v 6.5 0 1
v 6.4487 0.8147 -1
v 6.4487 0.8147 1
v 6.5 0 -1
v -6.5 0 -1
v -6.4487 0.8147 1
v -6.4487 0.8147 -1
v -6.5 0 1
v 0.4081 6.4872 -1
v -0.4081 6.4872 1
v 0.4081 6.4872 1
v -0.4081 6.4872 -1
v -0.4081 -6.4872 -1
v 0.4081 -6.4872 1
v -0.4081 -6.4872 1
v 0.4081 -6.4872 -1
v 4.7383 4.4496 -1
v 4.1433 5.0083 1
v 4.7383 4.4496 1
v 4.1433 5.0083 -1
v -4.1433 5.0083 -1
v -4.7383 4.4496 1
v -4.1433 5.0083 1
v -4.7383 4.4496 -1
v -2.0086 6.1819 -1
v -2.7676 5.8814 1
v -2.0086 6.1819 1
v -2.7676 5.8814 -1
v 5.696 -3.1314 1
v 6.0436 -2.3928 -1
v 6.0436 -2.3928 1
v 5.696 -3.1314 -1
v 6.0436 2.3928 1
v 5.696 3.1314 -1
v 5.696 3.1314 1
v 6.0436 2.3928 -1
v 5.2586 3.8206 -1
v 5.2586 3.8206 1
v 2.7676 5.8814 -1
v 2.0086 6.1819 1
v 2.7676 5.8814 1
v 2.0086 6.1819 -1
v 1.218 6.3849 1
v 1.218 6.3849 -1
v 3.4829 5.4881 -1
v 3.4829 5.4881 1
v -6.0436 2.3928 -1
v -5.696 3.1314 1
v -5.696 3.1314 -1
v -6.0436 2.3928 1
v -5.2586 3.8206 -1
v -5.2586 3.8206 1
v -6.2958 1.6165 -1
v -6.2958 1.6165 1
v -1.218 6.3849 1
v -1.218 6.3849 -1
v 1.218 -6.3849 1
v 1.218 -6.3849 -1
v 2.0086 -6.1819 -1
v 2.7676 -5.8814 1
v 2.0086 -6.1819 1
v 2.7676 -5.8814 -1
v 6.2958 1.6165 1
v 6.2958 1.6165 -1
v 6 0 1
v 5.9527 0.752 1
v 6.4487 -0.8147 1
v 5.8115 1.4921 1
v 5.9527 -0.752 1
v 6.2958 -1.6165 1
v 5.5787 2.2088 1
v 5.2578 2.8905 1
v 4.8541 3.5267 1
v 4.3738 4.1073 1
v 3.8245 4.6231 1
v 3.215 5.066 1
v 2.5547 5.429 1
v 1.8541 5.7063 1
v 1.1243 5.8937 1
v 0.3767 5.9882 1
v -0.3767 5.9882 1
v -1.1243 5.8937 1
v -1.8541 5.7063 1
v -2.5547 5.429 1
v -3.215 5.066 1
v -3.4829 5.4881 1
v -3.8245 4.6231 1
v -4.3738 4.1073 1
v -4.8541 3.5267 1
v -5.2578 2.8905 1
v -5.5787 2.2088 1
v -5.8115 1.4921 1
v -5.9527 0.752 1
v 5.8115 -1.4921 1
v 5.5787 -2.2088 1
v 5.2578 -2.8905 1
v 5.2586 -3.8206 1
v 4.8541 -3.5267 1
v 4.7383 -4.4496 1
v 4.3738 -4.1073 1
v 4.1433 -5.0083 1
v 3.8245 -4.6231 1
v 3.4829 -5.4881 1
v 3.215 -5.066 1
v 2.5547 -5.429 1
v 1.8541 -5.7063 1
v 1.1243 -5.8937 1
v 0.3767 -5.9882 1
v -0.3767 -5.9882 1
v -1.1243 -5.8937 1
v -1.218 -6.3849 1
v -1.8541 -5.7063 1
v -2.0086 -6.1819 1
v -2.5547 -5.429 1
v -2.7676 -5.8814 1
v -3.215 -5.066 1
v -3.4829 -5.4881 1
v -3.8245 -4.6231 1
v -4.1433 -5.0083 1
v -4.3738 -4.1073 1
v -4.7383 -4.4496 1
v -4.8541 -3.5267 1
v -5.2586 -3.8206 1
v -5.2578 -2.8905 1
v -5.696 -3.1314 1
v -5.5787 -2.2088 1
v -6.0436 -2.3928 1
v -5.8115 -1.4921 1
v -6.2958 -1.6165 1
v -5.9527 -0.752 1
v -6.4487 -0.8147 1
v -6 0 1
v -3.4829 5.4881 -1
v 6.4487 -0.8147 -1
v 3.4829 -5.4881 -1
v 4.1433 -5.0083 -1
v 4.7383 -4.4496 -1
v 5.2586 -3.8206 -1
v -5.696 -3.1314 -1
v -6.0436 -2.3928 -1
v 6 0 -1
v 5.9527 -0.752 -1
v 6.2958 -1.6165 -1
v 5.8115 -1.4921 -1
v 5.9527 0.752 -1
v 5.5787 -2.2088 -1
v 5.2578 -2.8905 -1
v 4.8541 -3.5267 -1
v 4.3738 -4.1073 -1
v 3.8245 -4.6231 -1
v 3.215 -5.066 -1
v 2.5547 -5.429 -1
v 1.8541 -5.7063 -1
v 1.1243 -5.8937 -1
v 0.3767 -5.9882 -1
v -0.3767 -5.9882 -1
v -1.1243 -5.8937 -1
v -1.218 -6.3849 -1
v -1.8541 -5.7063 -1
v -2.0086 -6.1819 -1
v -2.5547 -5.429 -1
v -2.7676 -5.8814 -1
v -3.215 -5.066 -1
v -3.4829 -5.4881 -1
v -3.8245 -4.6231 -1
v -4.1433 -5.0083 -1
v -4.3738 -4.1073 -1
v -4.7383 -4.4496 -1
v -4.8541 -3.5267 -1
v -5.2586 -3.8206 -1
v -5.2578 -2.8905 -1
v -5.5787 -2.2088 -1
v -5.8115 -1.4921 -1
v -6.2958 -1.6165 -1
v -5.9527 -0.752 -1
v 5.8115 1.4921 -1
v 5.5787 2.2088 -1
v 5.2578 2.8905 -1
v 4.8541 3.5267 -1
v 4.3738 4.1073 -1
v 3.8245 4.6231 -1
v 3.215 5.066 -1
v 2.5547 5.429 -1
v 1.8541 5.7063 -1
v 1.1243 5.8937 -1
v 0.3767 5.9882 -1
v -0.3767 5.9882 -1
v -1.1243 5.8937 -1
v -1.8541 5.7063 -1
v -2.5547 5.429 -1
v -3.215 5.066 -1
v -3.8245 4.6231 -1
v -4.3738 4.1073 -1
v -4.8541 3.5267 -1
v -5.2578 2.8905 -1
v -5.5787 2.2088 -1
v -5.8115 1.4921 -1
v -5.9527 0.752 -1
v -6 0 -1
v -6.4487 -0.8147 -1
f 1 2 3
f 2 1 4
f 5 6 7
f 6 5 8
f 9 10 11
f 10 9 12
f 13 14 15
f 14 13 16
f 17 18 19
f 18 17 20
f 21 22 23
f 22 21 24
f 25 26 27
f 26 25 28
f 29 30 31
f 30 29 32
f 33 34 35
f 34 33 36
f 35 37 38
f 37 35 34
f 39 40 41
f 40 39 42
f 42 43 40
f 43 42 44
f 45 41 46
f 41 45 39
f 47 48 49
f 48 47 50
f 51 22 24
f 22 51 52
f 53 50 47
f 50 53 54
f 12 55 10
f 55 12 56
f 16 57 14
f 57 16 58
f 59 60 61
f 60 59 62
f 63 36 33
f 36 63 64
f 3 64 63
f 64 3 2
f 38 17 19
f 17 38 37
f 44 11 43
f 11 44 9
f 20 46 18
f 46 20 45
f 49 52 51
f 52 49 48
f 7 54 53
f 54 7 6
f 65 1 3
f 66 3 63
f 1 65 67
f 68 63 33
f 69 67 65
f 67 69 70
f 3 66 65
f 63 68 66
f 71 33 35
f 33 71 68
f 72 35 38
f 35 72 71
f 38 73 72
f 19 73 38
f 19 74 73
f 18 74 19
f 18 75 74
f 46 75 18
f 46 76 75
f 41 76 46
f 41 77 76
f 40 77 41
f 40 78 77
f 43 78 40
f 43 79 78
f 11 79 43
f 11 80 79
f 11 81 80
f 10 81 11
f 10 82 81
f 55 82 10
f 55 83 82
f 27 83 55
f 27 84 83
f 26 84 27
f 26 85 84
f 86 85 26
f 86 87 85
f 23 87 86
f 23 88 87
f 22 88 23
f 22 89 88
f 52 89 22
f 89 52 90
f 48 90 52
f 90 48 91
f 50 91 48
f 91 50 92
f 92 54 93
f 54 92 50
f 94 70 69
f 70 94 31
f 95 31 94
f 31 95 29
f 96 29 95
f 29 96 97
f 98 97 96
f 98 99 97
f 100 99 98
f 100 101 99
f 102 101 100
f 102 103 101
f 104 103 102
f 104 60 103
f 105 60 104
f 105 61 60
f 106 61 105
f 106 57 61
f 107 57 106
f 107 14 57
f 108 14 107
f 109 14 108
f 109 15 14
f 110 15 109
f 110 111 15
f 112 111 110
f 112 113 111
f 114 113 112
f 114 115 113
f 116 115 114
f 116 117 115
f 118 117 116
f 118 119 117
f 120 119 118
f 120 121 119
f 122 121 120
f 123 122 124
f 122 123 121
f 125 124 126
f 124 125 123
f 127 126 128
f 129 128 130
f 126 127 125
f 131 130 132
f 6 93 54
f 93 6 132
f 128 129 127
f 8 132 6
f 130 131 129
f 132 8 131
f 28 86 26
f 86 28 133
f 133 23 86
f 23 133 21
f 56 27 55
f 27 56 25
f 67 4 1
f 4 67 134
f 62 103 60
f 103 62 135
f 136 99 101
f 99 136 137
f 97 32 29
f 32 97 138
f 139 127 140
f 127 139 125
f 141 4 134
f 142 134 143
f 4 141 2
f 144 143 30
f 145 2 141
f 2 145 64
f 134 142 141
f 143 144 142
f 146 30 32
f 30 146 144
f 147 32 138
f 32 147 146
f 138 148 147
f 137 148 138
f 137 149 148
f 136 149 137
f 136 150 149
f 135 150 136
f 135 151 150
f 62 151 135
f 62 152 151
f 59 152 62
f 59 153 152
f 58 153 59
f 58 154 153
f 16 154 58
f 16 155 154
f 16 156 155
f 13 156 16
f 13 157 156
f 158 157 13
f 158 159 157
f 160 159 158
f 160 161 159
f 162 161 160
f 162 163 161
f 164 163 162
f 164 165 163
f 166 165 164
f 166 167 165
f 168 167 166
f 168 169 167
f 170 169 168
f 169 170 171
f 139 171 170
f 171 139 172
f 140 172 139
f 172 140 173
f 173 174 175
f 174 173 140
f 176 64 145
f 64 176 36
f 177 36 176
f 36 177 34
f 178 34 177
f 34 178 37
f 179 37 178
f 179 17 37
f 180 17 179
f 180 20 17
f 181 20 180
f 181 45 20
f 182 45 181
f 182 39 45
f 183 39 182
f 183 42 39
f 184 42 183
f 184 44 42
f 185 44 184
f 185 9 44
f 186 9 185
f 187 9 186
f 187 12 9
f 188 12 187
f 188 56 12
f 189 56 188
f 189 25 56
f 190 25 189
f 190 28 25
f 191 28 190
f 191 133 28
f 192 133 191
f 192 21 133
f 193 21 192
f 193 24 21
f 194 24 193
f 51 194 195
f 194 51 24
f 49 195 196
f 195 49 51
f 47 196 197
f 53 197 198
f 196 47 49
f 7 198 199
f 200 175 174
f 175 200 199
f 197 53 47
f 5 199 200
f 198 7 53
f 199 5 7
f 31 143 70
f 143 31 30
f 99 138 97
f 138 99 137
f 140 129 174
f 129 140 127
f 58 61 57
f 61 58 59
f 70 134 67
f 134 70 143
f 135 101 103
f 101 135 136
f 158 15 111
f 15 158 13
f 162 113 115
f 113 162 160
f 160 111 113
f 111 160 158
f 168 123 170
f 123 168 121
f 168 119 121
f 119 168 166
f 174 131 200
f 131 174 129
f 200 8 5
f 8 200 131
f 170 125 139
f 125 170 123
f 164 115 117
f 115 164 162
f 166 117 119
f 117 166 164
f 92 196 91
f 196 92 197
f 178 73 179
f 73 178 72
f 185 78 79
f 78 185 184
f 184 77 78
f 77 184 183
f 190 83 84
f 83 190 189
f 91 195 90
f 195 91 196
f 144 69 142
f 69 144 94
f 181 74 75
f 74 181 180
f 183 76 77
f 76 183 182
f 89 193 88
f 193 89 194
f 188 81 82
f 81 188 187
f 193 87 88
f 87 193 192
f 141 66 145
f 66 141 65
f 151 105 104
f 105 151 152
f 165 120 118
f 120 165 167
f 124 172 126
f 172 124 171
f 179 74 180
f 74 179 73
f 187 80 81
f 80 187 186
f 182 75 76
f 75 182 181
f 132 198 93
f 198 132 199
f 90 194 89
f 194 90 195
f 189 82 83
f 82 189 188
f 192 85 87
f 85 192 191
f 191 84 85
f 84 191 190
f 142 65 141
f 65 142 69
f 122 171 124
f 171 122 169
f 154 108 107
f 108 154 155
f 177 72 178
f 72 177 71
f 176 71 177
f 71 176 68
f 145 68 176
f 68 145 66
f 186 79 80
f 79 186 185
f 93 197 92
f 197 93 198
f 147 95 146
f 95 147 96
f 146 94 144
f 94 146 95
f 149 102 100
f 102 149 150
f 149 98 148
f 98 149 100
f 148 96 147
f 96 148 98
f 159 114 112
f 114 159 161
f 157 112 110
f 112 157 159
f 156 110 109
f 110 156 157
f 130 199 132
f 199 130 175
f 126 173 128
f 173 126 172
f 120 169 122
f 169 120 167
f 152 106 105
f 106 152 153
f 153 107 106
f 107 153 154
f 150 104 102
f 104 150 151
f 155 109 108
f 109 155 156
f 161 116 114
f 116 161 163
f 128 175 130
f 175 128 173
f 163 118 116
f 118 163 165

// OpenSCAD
$fn = 50;


difference() {
	union() {
		translate(v = [0, 0, -1.0000000000]) {
			cylinder(h = 2, r = 6.5000000000);
		}
	}
	union() {
		translate(v = [0, 0, -100.0000000000]) {
			cylinder(h = 200, r = 6);
		}
	}
}
